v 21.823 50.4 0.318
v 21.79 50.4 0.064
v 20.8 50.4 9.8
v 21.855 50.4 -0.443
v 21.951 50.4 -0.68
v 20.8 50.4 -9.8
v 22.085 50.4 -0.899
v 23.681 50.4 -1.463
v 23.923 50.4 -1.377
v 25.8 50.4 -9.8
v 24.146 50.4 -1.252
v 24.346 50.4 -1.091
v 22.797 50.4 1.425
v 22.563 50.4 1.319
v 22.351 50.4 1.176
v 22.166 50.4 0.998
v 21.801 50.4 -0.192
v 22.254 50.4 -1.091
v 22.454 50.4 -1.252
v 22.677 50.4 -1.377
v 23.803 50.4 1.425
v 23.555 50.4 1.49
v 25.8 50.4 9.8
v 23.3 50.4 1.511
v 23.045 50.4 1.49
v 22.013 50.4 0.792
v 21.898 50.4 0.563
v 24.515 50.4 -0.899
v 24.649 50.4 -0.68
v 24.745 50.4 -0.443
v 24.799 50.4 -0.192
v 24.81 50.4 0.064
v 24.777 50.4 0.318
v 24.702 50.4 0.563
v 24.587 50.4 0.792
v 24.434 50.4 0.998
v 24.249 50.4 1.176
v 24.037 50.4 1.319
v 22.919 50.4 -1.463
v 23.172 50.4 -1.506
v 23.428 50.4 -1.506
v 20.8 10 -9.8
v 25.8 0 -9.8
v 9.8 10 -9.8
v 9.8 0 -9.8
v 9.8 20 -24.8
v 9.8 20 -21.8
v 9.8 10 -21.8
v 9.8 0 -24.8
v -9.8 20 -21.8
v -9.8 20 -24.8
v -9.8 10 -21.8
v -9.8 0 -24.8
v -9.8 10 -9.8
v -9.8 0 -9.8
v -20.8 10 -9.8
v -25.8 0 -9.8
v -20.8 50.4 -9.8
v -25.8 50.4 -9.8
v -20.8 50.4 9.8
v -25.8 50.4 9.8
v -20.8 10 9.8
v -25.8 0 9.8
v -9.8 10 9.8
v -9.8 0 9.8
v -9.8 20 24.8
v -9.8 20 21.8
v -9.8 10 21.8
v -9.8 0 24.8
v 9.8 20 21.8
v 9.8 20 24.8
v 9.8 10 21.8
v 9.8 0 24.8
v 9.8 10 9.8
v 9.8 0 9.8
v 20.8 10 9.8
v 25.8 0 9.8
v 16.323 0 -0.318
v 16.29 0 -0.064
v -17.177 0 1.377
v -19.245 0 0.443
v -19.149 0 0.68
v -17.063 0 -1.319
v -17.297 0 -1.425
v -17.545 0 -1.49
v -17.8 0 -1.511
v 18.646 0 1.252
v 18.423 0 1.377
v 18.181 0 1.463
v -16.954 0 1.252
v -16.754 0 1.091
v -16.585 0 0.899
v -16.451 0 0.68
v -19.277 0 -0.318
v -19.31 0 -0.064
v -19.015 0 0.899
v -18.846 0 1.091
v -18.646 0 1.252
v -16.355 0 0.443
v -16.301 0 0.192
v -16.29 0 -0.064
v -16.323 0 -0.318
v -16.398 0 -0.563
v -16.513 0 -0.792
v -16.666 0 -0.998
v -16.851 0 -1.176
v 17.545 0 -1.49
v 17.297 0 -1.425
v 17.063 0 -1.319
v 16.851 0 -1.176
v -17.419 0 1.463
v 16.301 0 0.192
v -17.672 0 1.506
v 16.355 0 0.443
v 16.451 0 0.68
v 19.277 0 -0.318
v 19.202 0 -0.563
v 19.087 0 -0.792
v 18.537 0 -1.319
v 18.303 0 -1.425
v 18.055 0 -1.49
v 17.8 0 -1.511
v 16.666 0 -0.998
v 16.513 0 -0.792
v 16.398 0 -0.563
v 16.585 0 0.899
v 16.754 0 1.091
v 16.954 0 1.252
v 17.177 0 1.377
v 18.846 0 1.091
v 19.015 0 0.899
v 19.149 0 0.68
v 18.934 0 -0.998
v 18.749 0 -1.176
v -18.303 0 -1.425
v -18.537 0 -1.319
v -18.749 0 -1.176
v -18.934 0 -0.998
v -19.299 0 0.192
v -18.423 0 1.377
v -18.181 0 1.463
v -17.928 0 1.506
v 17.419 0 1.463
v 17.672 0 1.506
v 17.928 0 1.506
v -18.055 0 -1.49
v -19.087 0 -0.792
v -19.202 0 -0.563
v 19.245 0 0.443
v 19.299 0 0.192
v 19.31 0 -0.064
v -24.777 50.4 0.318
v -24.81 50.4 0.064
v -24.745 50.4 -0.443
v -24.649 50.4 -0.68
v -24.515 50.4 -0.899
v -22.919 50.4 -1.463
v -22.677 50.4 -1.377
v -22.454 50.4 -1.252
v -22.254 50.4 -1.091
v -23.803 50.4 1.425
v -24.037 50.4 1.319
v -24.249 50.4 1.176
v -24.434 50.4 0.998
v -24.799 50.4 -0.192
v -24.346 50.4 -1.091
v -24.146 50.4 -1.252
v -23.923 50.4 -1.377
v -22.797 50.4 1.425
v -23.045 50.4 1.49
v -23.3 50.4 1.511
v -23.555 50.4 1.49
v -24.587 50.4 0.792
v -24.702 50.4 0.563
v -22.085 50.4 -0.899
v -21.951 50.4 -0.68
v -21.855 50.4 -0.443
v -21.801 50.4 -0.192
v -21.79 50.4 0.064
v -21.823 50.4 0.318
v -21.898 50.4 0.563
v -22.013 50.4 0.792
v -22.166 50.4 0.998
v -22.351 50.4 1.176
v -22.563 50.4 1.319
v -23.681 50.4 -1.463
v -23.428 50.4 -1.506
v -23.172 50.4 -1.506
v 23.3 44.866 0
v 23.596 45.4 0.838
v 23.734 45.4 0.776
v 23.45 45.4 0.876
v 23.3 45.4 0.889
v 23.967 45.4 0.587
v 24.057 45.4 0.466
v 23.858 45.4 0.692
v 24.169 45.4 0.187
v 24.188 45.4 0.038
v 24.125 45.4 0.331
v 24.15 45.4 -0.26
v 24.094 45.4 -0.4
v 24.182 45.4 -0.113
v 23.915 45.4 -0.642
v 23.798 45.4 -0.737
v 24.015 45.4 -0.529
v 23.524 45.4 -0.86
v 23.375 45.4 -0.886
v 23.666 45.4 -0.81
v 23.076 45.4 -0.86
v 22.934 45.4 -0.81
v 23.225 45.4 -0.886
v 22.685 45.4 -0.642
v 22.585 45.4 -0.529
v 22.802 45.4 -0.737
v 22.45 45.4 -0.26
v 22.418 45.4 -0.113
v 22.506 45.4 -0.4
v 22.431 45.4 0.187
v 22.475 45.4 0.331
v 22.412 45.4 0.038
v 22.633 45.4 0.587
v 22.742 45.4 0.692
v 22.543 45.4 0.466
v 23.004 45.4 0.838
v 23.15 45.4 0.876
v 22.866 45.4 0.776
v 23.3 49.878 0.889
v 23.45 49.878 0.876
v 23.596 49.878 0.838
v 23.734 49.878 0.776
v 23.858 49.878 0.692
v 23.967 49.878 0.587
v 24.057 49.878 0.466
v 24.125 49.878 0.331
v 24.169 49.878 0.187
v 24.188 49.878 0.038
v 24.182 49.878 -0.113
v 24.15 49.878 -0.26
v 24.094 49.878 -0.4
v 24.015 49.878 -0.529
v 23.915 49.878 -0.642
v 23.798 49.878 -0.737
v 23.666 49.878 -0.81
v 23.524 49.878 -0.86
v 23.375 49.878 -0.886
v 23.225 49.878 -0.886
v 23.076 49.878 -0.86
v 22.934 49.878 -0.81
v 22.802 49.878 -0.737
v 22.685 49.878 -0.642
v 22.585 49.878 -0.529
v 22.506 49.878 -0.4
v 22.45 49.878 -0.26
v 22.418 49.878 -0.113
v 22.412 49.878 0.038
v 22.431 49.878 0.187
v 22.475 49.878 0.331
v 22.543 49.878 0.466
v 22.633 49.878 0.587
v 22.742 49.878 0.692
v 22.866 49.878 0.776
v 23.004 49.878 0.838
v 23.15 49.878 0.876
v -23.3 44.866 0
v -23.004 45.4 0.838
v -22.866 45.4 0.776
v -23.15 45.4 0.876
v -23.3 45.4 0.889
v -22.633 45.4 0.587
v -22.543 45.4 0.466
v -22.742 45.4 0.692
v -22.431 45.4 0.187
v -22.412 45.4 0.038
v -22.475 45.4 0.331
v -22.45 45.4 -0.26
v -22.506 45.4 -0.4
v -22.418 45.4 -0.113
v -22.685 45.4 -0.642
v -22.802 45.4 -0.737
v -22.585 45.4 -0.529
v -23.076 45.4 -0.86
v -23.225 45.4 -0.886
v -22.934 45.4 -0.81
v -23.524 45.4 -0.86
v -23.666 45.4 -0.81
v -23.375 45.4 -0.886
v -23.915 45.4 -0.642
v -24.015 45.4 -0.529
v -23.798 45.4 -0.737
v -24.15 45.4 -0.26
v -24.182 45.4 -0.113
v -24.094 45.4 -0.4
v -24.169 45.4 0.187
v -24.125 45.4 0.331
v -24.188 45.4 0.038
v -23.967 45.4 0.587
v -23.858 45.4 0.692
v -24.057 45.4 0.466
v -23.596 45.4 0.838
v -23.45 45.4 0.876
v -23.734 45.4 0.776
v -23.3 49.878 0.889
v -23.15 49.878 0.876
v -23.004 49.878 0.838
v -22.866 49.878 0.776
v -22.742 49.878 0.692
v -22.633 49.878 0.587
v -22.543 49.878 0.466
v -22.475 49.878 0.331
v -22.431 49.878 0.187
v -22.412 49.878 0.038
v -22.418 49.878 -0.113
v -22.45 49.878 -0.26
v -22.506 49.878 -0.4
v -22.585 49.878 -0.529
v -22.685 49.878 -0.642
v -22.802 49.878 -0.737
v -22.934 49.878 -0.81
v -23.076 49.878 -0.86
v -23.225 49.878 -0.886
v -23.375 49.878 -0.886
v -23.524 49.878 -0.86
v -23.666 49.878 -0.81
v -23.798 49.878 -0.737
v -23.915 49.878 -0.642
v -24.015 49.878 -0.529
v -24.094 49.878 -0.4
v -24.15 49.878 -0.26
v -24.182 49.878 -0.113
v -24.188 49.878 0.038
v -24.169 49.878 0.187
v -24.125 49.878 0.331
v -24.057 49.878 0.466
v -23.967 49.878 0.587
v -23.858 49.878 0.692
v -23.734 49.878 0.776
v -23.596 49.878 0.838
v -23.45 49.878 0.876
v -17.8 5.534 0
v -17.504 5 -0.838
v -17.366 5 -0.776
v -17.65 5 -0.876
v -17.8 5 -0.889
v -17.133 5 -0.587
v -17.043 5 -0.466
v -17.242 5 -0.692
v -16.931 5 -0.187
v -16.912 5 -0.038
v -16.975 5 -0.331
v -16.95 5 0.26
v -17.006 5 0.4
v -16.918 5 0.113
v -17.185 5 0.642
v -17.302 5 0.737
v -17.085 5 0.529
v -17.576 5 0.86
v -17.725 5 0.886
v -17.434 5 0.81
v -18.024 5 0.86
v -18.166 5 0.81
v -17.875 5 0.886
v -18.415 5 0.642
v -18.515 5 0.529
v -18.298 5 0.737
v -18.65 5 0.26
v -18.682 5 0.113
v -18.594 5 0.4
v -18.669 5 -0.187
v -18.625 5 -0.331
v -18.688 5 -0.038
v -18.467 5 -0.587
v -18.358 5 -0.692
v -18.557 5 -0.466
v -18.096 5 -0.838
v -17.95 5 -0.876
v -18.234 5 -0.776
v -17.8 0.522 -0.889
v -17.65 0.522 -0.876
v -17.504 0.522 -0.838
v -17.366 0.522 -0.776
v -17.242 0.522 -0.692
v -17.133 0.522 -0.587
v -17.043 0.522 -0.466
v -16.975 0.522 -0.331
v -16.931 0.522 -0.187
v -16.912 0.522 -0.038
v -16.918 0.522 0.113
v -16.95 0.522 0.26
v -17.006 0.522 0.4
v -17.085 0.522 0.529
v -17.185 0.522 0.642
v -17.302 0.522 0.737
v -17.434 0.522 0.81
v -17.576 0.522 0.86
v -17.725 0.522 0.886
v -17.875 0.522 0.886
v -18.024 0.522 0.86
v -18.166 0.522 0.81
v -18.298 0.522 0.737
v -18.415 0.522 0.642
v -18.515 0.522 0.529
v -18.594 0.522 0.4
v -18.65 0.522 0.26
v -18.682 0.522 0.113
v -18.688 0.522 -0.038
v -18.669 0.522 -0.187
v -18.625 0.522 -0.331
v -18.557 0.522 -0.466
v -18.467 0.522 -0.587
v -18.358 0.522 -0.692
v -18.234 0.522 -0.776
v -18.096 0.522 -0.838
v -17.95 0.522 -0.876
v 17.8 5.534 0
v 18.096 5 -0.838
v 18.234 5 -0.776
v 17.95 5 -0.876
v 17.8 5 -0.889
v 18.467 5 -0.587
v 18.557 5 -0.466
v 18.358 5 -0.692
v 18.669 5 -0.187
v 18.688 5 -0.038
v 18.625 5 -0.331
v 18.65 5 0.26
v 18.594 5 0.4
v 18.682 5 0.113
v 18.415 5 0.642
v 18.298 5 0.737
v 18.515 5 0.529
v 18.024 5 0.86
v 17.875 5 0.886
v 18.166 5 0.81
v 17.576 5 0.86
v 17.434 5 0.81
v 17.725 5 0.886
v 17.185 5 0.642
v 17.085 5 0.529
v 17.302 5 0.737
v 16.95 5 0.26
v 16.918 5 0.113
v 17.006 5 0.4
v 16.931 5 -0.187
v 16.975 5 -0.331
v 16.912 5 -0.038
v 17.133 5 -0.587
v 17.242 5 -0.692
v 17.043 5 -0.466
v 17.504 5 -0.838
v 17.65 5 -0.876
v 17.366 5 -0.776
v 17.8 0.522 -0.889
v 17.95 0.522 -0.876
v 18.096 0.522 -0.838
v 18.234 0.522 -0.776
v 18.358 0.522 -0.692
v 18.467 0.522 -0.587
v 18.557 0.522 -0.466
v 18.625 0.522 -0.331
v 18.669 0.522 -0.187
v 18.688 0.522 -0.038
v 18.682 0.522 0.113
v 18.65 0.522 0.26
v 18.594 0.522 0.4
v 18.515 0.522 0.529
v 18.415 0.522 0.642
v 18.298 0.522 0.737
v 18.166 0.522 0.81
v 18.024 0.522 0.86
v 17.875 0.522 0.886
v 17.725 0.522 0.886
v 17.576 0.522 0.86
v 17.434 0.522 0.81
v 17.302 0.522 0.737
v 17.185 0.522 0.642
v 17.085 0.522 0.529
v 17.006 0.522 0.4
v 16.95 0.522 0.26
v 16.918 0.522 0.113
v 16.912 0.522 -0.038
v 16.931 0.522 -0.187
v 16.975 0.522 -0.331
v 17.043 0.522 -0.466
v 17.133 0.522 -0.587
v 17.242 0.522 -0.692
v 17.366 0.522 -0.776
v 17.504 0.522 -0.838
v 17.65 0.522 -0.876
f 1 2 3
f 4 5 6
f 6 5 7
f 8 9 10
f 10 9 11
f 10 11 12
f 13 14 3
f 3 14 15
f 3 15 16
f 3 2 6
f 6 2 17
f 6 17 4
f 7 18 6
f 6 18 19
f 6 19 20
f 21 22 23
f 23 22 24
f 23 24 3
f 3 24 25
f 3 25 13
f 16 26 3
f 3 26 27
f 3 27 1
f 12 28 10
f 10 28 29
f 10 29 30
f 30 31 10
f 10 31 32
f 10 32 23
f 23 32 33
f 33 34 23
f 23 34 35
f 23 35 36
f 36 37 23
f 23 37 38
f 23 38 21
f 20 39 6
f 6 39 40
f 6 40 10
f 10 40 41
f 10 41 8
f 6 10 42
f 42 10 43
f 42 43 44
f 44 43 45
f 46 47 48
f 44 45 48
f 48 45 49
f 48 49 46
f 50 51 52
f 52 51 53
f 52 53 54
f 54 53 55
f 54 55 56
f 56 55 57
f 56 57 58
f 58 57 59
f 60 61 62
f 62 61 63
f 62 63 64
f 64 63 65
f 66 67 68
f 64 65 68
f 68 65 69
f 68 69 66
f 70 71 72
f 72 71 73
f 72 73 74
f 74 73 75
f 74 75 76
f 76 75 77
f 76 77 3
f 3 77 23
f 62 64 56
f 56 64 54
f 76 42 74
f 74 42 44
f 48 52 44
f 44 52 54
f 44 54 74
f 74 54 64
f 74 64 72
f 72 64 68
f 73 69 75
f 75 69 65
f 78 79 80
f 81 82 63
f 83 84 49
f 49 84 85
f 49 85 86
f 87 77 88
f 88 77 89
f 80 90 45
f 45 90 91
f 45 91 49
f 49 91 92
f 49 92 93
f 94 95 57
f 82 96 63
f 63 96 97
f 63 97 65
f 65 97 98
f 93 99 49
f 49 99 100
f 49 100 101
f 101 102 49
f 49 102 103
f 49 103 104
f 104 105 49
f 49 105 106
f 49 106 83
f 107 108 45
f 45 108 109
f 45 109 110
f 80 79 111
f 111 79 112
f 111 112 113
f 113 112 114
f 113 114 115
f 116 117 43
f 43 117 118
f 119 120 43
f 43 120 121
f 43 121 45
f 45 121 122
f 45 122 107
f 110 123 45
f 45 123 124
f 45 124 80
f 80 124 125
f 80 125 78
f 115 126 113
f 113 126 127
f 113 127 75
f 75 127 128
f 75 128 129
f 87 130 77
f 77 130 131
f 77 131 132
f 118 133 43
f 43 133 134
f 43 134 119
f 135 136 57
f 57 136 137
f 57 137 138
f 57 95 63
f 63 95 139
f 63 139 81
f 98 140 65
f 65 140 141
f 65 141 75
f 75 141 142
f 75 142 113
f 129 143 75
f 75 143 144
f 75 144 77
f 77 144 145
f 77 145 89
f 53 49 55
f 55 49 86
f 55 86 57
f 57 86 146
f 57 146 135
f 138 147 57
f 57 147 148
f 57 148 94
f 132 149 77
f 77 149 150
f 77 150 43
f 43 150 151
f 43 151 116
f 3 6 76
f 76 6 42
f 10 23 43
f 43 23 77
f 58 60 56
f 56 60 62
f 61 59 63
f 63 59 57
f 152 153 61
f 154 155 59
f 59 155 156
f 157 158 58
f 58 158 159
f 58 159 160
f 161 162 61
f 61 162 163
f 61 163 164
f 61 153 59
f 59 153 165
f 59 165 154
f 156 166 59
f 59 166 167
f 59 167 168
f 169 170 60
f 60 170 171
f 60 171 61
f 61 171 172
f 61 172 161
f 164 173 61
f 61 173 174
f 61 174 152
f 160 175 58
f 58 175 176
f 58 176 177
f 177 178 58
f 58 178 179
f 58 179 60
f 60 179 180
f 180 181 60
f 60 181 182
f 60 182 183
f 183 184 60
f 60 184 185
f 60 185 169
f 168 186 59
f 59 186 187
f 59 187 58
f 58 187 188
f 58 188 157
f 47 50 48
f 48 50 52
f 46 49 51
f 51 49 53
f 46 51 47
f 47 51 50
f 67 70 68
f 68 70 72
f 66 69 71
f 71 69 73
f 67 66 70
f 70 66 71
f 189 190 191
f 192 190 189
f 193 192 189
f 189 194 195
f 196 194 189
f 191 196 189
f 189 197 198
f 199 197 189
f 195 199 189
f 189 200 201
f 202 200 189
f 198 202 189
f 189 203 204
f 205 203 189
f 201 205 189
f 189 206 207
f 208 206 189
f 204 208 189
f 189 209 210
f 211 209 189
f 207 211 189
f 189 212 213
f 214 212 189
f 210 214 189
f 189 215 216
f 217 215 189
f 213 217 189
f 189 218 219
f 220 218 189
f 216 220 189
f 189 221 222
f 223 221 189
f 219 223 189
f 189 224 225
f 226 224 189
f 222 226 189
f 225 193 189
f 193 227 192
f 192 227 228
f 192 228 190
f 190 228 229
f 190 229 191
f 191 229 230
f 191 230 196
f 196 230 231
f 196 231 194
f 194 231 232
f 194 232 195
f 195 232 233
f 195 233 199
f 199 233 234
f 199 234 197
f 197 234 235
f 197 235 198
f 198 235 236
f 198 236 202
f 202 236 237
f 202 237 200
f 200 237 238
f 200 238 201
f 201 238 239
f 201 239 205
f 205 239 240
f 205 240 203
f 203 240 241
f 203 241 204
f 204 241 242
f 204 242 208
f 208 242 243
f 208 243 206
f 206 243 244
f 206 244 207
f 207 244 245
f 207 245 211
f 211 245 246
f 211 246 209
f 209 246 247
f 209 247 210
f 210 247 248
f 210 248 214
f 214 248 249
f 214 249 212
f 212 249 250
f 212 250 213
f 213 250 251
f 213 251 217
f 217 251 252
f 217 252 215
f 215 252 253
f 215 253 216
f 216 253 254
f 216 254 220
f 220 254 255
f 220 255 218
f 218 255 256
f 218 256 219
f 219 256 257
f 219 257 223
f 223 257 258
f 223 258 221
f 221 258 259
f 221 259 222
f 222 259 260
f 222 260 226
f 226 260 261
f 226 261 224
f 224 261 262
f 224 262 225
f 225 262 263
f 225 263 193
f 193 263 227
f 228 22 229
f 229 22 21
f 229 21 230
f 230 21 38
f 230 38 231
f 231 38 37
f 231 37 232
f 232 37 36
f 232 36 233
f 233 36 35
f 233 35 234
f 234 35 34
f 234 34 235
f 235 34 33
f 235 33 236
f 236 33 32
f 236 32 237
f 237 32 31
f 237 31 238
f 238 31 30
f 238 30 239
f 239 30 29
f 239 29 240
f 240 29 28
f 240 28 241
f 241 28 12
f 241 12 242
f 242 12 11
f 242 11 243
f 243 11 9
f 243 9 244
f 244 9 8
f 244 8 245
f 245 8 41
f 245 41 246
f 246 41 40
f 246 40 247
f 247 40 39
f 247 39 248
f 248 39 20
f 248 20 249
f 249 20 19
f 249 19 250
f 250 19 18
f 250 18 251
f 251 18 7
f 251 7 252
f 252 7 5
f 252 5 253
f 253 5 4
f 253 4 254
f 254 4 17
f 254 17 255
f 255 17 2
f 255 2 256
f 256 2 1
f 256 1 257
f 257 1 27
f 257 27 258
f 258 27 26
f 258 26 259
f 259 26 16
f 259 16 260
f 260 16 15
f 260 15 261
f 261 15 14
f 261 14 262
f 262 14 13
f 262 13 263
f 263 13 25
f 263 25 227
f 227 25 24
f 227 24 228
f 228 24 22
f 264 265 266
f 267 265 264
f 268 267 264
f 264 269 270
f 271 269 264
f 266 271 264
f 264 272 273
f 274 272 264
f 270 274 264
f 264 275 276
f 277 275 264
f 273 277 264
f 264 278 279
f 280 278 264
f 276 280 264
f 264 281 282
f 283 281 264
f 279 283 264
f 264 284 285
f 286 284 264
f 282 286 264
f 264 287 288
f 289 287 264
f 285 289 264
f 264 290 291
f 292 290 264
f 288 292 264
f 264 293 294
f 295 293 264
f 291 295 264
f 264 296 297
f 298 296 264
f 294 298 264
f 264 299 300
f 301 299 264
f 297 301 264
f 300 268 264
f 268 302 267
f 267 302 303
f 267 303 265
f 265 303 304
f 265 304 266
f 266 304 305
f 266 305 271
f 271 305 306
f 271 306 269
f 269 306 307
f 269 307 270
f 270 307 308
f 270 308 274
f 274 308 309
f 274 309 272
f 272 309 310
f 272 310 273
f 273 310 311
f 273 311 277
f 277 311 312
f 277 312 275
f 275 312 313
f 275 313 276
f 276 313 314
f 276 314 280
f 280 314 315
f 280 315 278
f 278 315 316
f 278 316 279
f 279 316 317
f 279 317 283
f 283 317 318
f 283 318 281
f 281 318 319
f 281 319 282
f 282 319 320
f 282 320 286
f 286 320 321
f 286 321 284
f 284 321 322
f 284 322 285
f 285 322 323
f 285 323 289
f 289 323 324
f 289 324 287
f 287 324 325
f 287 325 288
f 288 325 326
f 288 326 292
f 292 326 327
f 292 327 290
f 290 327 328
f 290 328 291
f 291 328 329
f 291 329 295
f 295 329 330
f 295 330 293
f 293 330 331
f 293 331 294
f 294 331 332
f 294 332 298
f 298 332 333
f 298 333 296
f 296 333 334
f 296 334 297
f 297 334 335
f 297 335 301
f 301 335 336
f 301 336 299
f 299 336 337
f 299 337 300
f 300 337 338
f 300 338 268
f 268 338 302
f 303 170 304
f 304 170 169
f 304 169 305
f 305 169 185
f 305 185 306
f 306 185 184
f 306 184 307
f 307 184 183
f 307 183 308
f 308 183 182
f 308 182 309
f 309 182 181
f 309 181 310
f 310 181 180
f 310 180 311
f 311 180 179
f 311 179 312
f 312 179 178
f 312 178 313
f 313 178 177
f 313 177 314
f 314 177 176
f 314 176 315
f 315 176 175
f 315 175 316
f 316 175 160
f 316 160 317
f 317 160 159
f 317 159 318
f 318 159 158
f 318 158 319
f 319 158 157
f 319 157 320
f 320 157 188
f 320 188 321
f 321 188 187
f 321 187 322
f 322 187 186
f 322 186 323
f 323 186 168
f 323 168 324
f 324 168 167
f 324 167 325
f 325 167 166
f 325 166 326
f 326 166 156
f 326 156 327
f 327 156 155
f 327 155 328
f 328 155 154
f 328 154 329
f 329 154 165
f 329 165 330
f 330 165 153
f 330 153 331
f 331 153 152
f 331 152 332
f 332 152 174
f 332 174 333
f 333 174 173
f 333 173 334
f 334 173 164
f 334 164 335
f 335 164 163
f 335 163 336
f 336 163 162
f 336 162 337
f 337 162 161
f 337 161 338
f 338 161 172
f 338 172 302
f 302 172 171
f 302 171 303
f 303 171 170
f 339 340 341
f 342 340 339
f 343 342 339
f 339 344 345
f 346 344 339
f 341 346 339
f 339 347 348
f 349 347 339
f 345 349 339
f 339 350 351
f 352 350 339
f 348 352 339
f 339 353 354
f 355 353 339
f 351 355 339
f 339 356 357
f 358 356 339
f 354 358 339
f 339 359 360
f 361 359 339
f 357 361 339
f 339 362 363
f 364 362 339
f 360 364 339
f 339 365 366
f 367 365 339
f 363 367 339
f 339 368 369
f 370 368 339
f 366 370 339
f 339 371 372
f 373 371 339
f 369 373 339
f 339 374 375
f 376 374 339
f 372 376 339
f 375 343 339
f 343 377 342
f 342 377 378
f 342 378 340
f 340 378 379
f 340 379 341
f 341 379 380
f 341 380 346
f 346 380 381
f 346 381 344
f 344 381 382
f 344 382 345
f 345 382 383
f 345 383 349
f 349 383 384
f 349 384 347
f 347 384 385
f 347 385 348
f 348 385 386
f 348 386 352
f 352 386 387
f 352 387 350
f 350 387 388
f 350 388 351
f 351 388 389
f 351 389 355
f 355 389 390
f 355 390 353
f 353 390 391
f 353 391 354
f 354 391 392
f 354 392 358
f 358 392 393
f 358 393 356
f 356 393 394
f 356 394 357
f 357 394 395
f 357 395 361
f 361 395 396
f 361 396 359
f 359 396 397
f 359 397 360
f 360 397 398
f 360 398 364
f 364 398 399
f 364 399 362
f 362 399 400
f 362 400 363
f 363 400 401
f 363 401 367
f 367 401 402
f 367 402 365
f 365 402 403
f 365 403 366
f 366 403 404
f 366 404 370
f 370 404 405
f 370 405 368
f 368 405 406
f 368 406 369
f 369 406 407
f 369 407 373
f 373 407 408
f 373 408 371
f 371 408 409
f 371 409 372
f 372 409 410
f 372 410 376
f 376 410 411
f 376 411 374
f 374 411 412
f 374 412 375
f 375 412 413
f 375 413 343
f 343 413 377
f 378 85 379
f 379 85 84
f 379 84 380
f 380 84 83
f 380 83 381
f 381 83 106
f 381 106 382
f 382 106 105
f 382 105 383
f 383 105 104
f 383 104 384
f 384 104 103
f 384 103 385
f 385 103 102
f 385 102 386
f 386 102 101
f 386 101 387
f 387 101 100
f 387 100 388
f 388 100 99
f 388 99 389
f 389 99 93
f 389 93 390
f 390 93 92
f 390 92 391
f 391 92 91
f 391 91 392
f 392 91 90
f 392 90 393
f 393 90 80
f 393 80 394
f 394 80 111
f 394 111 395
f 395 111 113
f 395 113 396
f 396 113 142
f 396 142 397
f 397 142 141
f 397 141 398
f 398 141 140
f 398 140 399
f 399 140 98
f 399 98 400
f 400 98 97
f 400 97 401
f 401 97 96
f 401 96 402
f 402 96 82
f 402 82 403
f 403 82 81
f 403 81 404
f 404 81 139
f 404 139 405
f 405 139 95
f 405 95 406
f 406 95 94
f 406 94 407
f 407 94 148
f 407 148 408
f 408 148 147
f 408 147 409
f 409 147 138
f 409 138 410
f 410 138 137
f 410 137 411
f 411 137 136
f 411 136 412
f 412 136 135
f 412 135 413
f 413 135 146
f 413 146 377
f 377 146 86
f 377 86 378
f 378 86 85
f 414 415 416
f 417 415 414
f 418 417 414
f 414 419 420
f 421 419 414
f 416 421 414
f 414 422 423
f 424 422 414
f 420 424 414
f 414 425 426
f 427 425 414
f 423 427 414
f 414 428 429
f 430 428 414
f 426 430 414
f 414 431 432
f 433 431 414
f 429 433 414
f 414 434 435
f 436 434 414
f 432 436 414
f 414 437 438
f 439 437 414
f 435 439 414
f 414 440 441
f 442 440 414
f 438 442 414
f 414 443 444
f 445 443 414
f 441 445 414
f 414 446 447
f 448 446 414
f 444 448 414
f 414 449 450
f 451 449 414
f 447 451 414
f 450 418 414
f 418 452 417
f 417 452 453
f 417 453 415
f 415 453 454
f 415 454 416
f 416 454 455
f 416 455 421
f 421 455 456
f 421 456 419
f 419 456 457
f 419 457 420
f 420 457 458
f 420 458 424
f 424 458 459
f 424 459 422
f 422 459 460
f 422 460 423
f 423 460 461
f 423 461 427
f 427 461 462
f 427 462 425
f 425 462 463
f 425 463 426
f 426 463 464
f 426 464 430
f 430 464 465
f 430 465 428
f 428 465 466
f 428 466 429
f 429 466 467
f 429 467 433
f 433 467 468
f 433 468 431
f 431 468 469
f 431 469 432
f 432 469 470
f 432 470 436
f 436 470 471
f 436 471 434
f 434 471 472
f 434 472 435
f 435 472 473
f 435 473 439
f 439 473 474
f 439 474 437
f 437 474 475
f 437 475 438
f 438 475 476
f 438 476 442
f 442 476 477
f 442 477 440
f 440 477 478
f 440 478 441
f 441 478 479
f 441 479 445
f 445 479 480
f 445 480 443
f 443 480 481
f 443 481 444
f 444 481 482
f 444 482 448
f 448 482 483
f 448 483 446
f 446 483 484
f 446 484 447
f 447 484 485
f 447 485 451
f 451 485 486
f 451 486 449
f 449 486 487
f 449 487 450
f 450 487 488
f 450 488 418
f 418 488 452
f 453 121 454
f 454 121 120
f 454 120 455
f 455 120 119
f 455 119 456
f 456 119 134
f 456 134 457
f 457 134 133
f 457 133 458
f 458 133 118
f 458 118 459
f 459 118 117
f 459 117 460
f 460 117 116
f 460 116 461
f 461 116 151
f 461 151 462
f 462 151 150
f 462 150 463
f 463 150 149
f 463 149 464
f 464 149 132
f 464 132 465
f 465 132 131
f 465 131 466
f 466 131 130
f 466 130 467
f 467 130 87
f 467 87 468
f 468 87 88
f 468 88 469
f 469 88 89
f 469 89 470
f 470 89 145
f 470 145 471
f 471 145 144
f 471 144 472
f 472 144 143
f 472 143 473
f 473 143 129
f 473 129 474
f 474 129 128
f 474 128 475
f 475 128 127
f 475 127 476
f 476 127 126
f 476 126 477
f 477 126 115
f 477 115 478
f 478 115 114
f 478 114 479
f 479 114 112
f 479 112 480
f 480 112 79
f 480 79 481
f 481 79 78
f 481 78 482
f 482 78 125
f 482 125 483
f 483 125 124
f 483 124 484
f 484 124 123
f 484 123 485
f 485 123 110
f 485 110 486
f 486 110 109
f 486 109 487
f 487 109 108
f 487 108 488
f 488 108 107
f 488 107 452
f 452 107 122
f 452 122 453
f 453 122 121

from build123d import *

# Parameters (mm, degrees)
RESSALTO_EXTRUS_O1_DEPTH                             = 10
ESBO_O2_W                                            = 5
ESBO_O2_H                                            = 19.6
RESSALTO_EXTRUS_O2_DEPTH                             = 50.4
RESSALTO_EXTRUS_O3_DEPTH                             = 10
RESSALTO_EXTRUS_O3_DEPTH_BACK                        = 10
ESBO_O3_W                                            = 19.6
ESBO_O3_H                                            = 3
ESCAREADO_PARA_PARAFUSO_DE_M_QUINA_COM_C_D           = 1.778
ESCAREADO_PARA_PARAFUSO_DE_M_QUINA_COM_C_DEPTH       = 5
ESCAREADO_PARA_PARAFUSO_DE_M_QUINA_COM_C_CSINK_D     = 3.0226
ESCAREADO_PARA_PARAFUSO_DE_M_QUINA_COM_C_CSINK_ANGLE = 100
ESCAREADO_PARA_PARAFUSO_DE_M_QUINA_COM_C_TIP         = 0.53416509
ESCAREADO_PARA_PARAFUSO_DE_M_QUINA_C_2_D             = 1.778
ESCAREADO_PARA_PARAFUSO_DE_M_QUINA_C_2_DEPTH         = 5
ESCAREADO_PARA_PARAFUSO_DE_M_QUINA_C_2_CSINK_D       = 3.0226
ESCAREADO_PARA_PARAFUSO_DE_M_QUINA_C_2_CSINK_ANGLE   = 100
ESCAREADO_PARA_PARAFUSO_DE_M_QUINA_C_2_TIP           = 0.53416509


with BuildPart() as part:
    # Esboço1 → Ressalto-extrusão1 (new body)
    with BuildSketch(Plane(origin=(0, 0, 0), x_dir=(1, 0, 0), z_dir=(0, 1, 0))):
        Polygon((-9.8, 21.8), (-9.8, 9.8), (-20.8, 9.8), (-20.8, -9.8), (-9.8, -9.8), (-9.8, -21.8), (9.8, -21.8), (9.8, -9.8), (20.8, -9.8), (20.8, 9.8), (9.8, 9.8), (9.8, 21.8), align=None)
    extrude(amount=RESSALTO_EXTRUS_O1_DEPTH)

    # Esboço2 → Ressalto-extrusão2 (add)
    with BuildSketch(Plane(origin=(0, 0, 0), x_dir=(1, 0, 0), z_dir=(0, 1, 0))):
        with Locations((23.3, 0)):
            Rectangle(ESBO_O2_W, ESBO_O2_H)
        with Locations((-23.3, 0)):
            Rectangle(ESBO_O2_W, ESBO_O2_H)
    extrude(amount=RESSALTO_EXTRUS_O2_DEPTH)

    # Esboço3 → Ressalto-extrusão3 (add, two sides: drawn at the far end of the back side and taken through both)
    with BuildSketch(Plane(origin=(0, 10, 0), x_dir=(1, 0, 0), z_dir=(0, 1, 0)).offset(-RESSALTO_EXTRUS_O3_DEPTH_BACK)):
        with Locations((0, 23.3)):
            Rectangle(ESBO_O3_W, ESBO_O3_H)
        with Locations((0, -23.3)):
            Rectangle(ESBO_O3_W, ESBO_O3_H)
    extrude(amount=RESSALTO_EXTRUS_O3_DEPTH + RESSALTO_EXTRUS_O3_DEPTH_BACK)

    # Escareado para parafuso de m_quina com c
    with Locations(Plane(origin=(0, 50.4, 0), x_dir=(1, 0, 0), z_dir=(0, 1, 0))):
        with Locations((-23.3, 0), (23.3, 0)):
            CounterSinkHole(ESCAREADO_PARA_PARAFUSO_DE_M_QUINA_COM_C_D / 2, ESCAREADO_PARA_PARAFUSO_DE_M_QUINA_COM_C_CSINK_D / 2, depth=ESCAREADO_PARA_PARAFUSO_DE_M_QUINA_COM_C_DEPTH, counter_sink_angle=ESCAREADO_PARA_PARAFUSO_DE_M_QUINA_COM_C_CSINK_ANGLE)
            with Locations((0, 0, -(ESCAREADO_PARA_PARAFUSO_DE_M_QUINA_COM_C_DEPTH + ESCAREADO_PARA_PARAFUSO_DE_M_QUINA_COM_C_TIP / 2))):  # 118° drill point
                Cone(0, ESCAREADO_PARA_PARAFUSO_DE_M_QUINA_COM_C_D / 2, ESCAREADO_PARA_PARAFUSO_DE_M_QUINA_COM_C_TIP, mode=Mode.SUBTRACT)

    # Escareado para parafuso de m_quina c 2
    with Locations(Plane(origin=(0, 0, 0), x_dir=(-1, 0, 0), z_dir=(0, -1, 0))):
        with Locations((-17.8, 0), (17.8, 0)):
            CounterSinkHole(ESCAREADO_PARA_PARAFUSO_DE_M_QUINA_C_2_D / 2, ESCAREADO_PARA_PARAFUSO_DE_M_QUINA_C_2_CSINK_D / 2, depth=ESCAREADO_PARA_PARAFUSO_DE_M_QUINA_C_2_DEPTH, counter_sink_angle=ESCAREADO_PARA_PARAFUSO_DE_M_QUINA_C_2_CSINK_ANGLE)
            with Locations((0, 0, -(ESCAREADO_PARA_PARAFUSO_DE_M_QUINA_C_2_DEPTH + ESCAREADO_PARA_PARAFUSO_DE_M_QUINA_C_2_TIP / 2))):  # 118° drill point
                Cone(0, ESCAREADO_PARA_PARAFUSO_DE_M_QUINA_C_2_D / 2, ESCAREADO_PARA_PARAFUSO_DE_M_QUINA_C_2_TIP, mode=Mode.SUBTRACT)


solid = part.part
